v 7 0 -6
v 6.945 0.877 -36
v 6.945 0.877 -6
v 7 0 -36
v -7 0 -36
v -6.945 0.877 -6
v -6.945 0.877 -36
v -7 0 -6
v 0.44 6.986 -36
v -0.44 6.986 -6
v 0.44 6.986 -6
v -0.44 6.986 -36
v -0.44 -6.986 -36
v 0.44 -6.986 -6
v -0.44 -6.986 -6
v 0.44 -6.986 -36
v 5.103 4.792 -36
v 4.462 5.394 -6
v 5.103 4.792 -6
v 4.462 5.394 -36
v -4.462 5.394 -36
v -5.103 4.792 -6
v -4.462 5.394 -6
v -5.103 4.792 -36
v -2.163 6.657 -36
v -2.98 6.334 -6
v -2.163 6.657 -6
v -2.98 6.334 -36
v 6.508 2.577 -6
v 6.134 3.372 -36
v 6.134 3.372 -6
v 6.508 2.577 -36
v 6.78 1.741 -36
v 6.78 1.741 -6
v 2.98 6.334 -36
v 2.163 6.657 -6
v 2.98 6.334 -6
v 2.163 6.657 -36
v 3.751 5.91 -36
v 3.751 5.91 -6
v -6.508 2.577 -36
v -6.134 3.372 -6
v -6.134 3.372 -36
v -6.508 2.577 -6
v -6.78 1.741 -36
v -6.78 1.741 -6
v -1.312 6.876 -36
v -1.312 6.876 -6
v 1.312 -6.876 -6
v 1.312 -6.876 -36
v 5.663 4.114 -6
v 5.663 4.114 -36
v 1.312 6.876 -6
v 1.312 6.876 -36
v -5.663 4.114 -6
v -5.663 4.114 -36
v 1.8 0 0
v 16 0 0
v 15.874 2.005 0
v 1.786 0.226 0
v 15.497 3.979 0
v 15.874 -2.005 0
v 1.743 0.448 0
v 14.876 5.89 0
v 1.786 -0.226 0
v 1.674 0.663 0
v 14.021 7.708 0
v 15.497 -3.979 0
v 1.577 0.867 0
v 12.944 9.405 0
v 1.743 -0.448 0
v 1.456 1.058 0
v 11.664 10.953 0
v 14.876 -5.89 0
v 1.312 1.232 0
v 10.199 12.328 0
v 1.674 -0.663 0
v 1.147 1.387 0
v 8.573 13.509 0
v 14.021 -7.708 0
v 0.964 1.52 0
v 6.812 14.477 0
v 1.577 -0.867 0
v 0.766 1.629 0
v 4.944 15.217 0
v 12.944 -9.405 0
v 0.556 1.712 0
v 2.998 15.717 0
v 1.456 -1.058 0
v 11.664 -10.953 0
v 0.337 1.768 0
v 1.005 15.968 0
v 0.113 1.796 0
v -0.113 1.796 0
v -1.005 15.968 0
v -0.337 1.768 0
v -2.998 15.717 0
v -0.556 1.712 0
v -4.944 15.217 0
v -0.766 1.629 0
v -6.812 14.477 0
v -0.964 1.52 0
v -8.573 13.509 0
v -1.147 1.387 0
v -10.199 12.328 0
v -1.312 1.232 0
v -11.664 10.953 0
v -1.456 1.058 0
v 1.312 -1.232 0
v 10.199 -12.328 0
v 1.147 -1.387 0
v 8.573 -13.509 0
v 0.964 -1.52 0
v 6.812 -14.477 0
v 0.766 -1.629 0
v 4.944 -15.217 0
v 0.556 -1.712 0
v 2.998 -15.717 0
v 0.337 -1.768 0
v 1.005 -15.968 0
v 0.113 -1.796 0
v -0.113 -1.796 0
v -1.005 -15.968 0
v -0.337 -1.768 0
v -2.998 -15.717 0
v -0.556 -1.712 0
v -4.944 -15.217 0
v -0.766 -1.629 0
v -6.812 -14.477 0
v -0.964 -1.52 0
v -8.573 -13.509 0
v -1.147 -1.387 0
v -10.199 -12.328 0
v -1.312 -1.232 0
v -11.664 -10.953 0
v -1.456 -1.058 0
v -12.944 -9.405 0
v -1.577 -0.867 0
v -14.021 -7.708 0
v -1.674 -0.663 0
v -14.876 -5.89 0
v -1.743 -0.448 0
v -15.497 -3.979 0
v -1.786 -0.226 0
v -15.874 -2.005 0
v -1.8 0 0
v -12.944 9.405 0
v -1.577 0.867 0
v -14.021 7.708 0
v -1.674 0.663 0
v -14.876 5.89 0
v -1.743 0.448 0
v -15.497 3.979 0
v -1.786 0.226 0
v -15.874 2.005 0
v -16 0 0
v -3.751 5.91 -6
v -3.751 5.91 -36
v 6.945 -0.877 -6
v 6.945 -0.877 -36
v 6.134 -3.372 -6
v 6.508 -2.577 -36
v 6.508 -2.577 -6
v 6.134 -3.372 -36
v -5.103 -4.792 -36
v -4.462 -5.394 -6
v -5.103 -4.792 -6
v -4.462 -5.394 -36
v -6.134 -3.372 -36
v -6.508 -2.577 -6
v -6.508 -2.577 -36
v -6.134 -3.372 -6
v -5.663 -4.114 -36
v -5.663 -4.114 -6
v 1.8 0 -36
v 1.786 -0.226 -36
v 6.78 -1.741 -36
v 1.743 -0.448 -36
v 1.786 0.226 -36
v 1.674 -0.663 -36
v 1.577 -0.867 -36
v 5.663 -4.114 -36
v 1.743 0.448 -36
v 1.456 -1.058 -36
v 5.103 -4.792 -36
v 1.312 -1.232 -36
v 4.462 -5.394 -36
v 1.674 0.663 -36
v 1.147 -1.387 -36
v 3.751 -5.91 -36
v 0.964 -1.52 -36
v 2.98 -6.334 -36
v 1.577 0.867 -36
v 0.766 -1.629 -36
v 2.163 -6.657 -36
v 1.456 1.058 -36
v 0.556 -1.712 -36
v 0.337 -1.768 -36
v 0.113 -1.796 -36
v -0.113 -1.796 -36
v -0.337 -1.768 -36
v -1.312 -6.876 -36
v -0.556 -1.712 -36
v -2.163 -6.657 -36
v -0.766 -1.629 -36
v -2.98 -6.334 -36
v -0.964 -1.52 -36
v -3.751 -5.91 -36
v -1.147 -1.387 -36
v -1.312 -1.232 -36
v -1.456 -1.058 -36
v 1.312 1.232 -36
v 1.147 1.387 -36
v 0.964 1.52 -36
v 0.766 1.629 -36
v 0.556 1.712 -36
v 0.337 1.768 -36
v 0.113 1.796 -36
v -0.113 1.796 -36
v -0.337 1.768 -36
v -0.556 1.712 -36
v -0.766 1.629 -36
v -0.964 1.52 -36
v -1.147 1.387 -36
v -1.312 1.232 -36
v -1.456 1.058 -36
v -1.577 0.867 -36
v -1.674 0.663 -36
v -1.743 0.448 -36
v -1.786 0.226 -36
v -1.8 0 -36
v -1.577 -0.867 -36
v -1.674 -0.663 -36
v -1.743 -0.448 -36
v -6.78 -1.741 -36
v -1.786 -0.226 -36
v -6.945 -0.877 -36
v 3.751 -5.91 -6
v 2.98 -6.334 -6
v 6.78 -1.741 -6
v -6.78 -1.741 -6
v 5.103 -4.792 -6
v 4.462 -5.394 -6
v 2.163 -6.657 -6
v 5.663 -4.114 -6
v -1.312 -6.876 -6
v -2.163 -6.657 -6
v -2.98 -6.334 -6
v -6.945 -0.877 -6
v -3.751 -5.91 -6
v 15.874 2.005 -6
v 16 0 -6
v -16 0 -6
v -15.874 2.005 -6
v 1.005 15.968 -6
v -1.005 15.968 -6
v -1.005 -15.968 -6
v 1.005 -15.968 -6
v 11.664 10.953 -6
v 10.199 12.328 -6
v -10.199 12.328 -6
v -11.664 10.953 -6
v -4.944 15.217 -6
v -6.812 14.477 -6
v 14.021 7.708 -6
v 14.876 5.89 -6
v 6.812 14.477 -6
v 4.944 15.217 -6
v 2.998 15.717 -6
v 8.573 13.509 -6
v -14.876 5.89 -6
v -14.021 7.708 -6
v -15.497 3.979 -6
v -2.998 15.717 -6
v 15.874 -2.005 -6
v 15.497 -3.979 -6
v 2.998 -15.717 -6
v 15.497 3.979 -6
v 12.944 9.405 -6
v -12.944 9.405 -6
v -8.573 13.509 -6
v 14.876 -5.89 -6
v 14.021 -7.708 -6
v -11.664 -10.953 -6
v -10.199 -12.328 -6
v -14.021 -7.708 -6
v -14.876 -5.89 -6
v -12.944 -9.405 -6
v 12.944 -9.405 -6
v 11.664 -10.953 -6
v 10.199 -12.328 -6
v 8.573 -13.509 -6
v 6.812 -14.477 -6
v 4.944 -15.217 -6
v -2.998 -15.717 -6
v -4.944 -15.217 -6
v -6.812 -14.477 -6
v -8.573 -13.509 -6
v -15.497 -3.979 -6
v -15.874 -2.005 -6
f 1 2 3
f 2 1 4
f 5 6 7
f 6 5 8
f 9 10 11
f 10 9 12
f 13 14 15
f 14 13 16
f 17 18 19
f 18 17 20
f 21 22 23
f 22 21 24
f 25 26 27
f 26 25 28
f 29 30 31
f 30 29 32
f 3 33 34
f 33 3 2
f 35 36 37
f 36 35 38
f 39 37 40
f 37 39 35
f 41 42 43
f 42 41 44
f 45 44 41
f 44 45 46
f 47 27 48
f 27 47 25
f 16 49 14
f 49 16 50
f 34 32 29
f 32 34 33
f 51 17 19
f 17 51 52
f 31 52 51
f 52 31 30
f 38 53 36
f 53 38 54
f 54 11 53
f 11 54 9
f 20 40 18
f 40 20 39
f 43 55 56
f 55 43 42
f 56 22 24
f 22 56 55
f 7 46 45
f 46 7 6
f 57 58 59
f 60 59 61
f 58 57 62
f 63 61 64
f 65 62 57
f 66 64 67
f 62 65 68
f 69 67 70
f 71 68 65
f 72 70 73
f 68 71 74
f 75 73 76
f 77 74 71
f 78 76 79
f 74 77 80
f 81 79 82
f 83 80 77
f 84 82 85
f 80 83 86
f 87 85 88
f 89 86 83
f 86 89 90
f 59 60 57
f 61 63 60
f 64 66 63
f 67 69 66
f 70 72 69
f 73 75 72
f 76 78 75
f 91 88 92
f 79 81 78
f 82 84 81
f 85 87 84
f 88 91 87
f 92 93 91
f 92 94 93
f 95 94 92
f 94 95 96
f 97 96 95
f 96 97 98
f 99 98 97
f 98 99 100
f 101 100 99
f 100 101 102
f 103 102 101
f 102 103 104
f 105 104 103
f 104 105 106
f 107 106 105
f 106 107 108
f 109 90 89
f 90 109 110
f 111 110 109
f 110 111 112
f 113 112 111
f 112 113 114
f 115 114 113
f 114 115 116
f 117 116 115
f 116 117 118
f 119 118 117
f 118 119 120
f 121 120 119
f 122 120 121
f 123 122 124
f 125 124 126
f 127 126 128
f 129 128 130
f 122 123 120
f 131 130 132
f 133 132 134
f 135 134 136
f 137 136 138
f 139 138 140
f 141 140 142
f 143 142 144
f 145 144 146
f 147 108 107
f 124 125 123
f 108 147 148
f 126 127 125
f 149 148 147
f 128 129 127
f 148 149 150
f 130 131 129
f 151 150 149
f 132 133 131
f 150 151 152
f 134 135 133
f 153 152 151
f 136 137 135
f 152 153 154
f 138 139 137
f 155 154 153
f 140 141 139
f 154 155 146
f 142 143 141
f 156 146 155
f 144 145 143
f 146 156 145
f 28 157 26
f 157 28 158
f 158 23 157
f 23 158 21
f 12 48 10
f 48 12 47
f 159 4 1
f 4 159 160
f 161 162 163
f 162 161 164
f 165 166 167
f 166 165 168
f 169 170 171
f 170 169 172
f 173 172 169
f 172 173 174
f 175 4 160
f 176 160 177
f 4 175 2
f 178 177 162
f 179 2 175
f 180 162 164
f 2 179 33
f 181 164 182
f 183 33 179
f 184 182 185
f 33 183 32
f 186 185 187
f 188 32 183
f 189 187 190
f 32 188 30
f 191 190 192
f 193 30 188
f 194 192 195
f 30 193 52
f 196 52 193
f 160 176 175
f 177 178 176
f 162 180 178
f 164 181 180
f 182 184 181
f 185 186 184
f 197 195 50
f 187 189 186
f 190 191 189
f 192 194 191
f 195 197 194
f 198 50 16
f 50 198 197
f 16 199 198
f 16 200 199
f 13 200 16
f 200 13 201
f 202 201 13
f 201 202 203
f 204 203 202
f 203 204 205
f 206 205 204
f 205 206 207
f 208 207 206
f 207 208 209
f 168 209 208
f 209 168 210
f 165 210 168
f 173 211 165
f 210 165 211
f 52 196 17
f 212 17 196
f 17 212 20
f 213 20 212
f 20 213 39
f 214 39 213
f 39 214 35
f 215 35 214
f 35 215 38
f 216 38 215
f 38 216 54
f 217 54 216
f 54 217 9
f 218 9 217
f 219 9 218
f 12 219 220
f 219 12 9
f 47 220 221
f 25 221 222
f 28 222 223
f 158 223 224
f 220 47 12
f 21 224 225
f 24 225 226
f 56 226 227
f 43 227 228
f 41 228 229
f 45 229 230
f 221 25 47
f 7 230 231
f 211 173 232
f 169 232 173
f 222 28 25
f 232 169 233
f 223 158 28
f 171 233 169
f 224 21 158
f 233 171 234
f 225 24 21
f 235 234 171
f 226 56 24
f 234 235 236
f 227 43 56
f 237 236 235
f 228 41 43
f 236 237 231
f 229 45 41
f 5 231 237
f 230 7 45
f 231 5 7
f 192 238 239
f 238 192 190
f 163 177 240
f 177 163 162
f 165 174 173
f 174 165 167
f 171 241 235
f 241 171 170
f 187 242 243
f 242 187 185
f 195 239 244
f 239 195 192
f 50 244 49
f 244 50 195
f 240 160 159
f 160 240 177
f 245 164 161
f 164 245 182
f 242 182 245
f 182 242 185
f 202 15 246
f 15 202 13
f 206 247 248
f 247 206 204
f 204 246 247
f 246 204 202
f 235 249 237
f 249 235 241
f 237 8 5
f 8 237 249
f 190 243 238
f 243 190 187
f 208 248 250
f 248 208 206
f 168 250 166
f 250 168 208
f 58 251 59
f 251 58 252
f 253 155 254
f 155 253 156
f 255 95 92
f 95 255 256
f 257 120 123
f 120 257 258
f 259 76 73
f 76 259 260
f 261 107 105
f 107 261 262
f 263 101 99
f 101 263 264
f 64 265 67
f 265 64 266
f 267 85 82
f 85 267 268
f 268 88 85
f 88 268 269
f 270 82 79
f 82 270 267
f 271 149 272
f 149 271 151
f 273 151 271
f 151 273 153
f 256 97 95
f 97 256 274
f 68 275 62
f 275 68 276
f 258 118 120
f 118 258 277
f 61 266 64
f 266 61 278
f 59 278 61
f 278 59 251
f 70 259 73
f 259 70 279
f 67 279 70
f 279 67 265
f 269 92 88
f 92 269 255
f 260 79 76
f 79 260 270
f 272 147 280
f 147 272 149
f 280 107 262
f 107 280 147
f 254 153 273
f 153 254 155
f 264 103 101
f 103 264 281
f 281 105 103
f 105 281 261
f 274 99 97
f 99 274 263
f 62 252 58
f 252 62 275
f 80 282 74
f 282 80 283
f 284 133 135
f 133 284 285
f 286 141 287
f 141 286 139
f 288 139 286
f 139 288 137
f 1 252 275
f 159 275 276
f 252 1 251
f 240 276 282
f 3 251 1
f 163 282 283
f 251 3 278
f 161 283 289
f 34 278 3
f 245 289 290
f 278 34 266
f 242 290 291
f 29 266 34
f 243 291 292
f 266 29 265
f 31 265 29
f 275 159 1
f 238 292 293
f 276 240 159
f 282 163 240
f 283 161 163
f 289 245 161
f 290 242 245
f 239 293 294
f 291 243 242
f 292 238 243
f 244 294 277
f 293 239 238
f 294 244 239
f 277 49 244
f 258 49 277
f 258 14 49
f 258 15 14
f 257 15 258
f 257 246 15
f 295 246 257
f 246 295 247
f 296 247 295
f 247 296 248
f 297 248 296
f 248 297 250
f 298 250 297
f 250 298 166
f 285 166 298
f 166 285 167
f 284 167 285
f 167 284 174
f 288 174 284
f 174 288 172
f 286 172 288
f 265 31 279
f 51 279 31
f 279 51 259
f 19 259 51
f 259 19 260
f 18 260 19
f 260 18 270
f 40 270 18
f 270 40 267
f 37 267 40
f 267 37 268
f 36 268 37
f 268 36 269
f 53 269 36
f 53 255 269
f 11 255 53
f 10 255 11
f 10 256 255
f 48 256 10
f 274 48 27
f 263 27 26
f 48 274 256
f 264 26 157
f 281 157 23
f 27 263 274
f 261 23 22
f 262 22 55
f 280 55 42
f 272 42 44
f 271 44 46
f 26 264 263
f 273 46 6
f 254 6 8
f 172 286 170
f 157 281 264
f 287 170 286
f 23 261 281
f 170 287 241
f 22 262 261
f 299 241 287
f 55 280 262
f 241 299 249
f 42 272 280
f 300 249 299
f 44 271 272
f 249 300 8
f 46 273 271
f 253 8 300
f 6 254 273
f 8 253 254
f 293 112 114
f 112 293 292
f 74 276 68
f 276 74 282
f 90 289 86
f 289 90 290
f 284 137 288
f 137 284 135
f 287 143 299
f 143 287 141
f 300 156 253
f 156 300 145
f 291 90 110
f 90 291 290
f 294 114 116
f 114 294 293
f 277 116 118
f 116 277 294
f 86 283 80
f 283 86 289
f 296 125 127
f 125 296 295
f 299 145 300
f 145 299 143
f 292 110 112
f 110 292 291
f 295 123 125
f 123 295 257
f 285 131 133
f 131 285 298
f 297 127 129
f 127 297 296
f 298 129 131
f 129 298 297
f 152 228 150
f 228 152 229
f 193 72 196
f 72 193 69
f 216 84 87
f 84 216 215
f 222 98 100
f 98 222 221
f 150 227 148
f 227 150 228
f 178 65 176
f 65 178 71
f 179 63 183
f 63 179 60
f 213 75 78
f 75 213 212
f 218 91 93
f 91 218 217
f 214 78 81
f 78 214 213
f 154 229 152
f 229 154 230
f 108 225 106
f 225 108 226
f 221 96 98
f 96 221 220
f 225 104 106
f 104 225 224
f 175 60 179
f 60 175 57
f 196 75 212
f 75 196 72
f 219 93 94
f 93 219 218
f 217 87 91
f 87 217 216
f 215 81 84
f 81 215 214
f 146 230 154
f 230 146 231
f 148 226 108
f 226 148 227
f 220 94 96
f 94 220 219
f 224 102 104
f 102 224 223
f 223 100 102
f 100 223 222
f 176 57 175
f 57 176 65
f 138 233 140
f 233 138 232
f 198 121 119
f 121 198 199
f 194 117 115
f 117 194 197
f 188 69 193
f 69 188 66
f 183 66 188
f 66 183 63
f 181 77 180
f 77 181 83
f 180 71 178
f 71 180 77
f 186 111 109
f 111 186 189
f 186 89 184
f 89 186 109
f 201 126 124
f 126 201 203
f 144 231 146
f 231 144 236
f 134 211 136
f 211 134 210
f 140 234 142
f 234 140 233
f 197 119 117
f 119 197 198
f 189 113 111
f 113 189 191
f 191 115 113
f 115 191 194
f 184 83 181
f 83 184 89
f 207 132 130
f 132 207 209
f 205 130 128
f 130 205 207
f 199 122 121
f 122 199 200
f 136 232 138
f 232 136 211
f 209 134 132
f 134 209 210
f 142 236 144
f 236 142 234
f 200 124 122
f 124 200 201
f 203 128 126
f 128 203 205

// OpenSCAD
$fn = 50;


difference() {
	union() {
		translate(v = [0, 0, -36.0000000000]) {
			cylinder(h = 36, r = 7.0000000000);
		}
		translate(v = [0, 0, -6.0000000000]) {
			cylinder(h = 6, r = 16.0000000000);
		}
	}
	union() {
		#translate(v = [0, 0, -36]) {
			cylinder(h = 36, r = 1.8000000000);
		}
	}
}
